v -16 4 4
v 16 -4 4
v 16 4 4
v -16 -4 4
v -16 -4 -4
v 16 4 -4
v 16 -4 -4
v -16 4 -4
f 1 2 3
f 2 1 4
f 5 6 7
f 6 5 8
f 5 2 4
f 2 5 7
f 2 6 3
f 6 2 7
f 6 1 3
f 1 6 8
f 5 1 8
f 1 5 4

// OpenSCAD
size=32; //block=32 //item=8



cube([size*1,size*0.25,size*0.25],center=true);
